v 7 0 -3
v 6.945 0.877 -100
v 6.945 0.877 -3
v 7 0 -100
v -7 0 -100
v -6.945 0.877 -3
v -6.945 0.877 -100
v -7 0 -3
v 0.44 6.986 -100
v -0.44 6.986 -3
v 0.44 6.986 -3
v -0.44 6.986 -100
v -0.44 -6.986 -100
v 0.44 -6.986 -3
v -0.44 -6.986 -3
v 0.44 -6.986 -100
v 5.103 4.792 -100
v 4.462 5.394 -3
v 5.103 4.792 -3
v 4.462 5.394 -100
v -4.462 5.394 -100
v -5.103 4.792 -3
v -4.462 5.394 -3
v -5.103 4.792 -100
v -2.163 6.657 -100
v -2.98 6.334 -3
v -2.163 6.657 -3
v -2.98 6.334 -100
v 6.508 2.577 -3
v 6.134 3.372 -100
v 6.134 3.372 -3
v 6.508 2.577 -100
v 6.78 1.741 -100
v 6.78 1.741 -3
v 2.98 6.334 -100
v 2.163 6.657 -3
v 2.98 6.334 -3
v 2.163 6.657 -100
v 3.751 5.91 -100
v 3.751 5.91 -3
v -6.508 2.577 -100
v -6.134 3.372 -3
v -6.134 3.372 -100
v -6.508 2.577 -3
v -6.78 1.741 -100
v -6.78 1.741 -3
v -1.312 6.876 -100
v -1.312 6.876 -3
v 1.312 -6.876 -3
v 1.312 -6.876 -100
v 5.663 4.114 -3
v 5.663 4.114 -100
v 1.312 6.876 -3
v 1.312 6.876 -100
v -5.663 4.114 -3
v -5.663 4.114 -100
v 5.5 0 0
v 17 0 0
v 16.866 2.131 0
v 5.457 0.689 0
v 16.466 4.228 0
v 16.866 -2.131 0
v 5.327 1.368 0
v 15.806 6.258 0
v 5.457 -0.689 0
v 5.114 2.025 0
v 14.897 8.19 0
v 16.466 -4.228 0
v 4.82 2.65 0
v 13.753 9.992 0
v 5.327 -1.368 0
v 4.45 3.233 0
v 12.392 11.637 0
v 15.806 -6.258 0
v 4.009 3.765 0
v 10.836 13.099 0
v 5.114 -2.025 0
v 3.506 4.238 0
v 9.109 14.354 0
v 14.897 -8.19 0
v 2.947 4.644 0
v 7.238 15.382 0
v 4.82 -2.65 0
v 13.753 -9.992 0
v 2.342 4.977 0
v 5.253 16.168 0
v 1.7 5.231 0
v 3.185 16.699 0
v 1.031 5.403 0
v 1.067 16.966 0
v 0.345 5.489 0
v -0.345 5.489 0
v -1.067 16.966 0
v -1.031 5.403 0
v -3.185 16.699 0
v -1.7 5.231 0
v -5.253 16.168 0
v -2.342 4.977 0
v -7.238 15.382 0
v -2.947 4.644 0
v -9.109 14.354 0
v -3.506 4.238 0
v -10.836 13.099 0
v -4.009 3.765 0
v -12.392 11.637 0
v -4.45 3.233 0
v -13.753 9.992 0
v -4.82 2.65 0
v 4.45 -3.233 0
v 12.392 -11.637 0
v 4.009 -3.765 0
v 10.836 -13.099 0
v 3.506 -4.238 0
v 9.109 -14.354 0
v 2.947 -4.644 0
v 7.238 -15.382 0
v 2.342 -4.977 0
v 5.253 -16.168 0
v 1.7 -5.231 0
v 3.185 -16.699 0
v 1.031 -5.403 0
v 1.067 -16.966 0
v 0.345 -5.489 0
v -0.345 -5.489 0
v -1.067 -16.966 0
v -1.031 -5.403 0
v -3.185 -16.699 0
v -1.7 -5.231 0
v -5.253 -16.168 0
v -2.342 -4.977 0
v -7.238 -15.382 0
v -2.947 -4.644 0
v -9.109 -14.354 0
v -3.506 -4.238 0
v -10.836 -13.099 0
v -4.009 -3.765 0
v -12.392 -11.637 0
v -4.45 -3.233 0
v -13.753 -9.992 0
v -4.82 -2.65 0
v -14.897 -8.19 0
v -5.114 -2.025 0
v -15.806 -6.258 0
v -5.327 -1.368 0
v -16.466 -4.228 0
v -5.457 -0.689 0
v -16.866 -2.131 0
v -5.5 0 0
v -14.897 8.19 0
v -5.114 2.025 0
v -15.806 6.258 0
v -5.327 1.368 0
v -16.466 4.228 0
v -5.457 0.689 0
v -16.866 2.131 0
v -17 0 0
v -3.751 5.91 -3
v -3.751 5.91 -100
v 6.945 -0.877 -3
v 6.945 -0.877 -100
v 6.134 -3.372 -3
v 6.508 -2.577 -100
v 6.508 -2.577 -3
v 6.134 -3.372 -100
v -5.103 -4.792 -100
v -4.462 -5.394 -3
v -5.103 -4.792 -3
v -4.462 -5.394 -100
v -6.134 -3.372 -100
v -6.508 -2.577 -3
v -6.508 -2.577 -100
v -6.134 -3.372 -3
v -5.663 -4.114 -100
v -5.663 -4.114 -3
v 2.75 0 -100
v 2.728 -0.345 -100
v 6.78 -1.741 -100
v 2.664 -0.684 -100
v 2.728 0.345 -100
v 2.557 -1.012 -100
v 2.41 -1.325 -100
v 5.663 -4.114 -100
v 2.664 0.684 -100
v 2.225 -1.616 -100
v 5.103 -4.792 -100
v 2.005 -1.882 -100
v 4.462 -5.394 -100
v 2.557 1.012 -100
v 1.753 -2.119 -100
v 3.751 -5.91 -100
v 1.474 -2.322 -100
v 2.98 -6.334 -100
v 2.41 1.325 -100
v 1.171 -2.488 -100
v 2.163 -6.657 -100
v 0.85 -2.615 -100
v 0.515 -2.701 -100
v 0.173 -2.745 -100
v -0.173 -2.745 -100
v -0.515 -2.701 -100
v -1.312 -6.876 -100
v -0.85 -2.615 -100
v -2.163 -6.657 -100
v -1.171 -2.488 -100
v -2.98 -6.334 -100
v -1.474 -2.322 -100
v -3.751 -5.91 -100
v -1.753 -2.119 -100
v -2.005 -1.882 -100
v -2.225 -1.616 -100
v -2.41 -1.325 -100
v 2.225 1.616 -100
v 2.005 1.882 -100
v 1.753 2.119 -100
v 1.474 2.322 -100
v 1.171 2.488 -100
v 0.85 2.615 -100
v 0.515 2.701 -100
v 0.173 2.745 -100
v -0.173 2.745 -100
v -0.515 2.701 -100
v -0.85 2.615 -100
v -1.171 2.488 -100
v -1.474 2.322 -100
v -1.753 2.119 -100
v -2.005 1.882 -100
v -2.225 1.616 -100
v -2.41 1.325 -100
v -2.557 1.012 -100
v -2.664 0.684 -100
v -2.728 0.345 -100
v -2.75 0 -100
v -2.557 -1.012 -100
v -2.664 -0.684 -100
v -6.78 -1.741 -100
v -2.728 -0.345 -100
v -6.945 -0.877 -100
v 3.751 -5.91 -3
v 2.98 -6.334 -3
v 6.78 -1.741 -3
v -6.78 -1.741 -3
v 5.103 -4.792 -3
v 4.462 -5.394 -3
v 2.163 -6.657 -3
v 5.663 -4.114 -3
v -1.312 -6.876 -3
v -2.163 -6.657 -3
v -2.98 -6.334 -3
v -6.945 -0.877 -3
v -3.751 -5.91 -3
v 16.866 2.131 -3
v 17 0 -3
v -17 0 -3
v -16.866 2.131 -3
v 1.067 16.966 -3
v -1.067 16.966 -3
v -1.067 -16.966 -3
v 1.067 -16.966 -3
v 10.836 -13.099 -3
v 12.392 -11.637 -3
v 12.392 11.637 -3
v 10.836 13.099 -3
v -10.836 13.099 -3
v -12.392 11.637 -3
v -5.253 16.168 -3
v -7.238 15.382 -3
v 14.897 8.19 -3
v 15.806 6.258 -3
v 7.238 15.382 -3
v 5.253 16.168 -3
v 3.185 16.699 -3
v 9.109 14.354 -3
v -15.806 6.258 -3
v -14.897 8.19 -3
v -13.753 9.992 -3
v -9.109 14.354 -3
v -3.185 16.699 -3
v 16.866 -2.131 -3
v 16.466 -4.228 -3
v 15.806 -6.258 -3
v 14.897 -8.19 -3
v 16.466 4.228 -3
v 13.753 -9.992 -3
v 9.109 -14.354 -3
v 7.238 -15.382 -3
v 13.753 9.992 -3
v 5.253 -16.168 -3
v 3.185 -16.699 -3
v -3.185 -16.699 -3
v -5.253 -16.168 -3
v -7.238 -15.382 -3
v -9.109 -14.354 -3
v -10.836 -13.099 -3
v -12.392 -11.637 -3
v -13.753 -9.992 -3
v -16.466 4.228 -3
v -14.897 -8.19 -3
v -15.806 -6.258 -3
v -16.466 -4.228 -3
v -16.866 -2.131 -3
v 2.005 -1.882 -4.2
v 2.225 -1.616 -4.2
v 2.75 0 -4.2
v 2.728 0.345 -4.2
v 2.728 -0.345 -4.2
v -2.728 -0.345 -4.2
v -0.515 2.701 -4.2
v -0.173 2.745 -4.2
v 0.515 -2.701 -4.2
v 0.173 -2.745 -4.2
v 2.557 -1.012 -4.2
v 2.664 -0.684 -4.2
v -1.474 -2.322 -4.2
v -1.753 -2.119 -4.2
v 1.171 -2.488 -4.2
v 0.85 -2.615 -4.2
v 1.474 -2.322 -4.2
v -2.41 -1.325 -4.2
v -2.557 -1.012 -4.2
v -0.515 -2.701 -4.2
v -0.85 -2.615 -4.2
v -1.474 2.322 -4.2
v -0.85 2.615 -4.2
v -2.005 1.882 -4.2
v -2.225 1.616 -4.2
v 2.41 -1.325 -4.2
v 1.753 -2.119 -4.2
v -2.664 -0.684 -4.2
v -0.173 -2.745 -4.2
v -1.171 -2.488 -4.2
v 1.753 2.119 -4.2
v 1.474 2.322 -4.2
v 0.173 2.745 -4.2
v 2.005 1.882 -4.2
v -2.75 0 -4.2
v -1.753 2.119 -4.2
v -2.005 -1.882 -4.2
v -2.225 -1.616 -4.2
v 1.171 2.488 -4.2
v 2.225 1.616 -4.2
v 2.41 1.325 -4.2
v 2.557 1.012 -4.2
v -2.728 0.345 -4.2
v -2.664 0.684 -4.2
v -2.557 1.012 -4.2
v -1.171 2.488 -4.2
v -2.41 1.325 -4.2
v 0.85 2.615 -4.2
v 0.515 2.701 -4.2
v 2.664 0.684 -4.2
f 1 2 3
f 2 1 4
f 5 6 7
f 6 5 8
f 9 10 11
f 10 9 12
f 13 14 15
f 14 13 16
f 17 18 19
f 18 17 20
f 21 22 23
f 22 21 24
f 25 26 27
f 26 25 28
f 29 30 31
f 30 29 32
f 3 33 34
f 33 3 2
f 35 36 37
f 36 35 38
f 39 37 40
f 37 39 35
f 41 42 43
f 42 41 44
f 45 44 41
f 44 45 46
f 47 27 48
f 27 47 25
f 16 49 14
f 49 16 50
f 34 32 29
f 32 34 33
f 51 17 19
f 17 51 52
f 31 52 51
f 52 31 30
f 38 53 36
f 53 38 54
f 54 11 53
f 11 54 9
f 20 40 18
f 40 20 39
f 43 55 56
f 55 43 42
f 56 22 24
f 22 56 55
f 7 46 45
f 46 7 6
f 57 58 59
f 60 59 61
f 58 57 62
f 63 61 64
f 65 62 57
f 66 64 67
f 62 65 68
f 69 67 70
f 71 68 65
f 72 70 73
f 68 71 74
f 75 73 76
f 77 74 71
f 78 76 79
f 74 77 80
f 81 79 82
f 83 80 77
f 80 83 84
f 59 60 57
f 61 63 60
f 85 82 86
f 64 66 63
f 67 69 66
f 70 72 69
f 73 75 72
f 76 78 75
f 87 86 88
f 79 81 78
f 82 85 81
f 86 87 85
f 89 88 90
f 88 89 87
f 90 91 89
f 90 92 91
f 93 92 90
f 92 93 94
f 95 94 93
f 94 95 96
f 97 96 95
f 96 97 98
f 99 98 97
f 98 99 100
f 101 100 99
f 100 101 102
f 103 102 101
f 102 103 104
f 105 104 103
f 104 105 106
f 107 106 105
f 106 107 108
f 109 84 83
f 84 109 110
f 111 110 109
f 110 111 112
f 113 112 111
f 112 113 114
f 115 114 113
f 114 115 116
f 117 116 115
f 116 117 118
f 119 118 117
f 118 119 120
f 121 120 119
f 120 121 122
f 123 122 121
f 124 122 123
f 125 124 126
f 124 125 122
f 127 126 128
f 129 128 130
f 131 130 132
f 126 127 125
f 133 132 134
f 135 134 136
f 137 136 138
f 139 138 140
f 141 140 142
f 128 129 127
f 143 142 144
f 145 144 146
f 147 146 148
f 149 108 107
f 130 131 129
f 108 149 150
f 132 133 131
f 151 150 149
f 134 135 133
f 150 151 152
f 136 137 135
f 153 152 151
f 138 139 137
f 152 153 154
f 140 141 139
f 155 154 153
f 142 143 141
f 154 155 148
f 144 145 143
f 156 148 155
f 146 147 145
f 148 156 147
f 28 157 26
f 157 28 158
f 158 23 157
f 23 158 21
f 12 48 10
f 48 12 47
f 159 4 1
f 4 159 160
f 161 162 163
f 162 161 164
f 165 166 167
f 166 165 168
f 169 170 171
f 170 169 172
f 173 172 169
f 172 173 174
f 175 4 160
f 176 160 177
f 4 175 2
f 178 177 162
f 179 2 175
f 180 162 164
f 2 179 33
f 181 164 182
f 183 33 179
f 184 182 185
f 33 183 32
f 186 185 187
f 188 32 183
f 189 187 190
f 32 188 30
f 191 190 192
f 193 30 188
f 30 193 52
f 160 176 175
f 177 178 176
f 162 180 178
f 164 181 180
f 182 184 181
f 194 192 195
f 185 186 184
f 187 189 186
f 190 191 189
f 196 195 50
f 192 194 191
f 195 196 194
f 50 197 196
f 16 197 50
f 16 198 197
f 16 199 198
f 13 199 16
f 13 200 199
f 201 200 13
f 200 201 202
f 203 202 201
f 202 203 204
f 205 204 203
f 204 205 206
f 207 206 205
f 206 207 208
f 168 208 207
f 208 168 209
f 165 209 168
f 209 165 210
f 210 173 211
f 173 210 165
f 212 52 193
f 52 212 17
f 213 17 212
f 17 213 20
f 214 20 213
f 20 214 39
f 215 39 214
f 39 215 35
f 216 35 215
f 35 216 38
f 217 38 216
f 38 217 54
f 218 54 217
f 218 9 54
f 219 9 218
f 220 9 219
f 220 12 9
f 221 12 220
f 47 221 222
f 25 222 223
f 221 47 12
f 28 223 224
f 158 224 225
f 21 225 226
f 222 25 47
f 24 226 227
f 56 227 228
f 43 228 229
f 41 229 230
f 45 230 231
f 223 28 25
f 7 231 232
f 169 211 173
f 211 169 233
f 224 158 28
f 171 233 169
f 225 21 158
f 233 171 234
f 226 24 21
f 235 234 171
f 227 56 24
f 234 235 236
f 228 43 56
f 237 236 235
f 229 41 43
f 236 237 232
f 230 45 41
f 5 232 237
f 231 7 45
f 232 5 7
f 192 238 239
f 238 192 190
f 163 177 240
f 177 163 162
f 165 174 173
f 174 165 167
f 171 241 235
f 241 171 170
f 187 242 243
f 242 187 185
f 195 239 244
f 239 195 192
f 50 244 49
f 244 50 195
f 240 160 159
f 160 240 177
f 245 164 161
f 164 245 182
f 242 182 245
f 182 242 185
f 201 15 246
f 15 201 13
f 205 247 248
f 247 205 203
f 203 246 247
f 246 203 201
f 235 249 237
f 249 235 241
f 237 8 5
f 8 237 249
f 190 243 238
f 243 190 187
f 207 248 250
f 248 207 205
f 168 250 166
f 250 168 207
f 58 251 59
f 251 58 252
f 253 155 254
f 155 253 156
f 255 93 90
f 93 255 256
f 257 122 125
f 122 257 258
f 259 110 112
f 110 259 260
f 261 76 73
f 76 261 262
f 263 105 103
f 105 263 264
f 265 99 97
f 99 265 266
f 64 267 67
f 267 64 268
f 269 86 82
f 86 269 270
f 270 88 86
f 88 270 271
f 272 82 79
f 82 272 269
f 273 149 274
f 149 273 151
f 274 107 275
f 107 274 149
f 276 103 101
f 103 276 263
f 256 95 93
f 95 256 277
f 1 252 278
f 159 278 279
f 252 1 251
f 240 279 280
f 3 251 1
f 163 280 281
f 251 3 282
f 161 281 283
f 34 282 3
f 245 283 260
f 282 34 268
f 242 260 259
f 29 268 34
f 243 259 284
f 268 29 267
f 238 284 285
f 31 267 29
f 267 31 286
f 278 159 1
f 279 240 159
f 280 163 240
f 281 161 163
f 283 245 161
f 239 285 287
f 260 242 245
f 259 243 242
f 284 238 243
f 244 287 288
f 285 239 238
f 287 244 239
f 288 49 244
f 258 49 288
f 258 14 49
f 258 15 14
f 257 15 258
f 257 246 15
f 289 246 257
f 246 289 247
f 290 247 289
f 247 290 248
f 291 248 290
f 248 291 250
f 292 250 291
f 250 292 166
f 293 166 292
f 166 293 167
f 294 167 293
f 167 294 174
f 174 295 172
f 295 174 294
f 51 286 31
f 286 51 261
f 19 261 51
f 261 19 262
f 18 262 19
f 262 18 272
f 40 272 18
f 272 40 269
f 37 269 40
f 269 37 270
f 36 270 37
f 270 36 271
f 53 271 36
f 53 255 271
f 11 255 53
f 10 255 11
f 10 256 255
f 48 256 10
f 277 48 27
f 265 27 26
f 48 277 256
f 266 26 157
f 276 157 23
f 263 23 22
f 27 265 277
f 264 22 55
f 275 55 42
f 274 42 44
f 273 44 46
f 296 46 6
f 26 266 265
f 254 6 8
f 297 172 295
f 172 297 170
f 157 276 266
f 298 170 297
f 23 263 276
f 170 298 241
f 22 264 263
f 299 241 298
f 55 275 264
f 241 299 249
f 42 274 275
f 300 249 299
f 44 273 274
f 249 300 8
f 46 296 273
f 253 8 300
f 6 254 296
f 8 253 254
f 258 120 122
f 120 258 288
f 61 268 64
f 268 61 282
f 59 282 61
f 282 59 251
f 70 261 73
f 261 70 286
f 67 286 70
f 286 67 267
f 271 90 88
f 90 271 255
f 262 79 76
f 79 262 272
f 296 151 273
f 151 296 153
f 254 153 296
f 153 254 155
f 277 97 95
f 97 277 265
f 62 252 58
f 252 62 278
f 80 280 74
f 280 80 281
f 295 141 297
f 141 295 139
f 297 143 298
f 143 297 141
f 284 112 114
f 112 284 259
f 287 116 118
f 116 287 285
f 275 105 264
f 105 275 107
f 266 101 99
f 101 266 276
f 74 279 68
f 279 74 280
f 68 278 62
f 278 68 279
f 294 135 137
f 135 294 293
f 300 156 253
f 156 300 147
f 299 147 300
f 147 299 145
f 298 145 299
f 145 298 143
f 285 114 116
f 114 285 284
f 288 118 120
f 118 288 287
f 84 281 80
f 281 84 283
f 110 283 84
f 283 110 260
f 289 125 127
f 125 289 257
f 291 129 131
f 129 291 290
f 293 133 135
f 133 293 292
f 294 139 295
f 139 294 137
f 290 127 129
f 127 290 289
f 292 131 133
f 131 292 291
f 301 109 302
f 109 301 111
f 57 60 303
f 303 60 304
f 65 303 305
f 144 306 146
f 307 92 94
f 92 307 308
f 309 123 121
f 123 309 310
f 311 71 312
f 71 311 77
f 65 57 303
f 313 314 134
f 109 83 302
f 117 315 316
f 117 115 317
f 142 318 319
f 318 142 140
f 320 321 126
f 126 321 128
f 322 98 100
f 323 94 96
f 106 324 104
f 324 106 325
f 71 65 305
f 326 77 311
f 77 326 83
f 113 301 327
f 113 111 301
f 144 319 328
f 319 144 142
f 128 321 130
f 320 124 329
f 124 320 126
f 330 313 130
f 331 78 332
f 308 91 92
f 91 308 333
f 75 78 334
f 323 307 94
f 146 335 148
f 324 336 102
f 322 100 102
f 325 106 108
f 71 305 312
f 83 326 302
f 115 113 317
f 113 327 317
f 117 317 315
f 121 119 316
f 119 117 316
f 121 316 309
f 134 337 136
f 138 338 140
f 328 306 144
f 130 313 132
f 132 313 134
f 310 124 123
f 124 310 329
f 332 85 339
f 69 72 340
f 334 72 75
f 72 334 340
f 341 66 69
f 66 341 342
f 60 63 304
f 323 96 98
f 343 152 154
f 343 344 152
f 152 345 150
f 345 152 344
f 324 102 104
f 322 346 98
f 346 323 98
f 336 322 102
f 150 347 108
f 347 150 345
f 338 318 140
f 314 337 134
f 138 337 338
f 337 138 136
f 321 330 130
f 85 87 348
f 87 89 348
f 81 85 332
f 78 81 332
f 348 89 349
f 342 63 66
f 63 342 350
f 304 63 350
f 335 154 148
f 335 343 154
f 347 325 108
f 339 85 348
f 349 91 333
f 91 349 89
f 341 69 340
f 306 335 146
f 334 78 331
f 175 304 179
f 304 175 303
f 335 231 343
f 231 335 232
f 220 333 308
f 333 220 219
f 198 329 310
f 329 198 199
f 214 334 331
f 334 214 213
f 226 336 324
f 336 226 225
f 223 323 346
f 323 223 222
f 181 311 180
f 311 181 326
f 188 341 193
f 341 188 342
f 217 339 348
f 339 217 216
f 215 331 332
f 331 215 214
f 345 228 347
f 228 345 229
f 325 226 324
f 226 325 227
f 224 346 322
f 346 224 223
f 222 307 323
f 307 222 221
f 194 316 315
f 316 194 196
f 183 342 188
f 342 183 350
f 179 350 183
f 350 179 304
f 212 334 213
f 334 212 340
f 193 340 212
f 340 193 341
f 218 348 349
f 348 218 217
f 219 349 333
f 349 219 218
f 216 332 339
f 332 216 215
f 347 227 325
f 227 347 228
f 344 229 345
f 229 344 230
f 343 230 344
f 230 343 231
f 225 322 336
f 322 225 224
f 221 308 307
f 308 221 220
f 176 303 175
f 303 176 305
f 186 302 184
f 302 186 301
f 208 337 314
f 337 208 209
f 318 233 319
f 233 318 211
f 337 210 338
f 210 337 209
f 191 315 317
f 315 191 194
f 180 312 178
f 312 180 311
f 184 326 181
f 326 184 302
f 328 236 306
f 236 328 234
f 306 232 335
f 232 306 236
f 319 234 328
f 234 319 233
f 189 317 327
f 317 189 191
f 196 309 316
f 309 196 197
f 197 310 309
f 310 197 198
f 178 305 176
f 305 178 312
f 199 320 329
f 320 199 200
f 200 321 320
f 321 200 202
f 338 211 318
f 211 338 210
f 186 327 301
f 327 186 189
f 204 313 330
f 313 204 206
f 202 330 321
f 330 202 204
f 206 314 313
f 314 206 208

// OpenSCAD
$fn = 50;


difference() {
	union() {
		translate(v = [0, 0, -100.0000000000]) {
			cylinder(h = 100, r = 7.0000000000);
		}
		translate(v = [0, 0, -3.0000000000]) {
			cylinder(h = 3, r = 17.0000000000);
		}
	}
	union() {
		translate(v = [0, 0, 0]) {
			rotate(a = [0, 0, 0]) {
				difference() {
					union() {
						#translate(v = [0, 0, -100.0000000000]) {
							cylinder(h = 100, r = 2.2500000000);
						}
						#translate(v = [0, 0, -4.2000000000]) {
							cylinder(h = 4.2000000000, r1 = 2.7500000000, r2 = 5.5000000000);
						}
						#translate(v = [0, 0, -100.0000000000]) {
							cylinder(h = 100, r = 2.7500000000);
						}
						#translate(v = [0, 0, -100.0000000000]) {
							cylinder(h = 100, r = 2.2500000000);
						}
					}
					union();
				}
			}
		}
	}
}
